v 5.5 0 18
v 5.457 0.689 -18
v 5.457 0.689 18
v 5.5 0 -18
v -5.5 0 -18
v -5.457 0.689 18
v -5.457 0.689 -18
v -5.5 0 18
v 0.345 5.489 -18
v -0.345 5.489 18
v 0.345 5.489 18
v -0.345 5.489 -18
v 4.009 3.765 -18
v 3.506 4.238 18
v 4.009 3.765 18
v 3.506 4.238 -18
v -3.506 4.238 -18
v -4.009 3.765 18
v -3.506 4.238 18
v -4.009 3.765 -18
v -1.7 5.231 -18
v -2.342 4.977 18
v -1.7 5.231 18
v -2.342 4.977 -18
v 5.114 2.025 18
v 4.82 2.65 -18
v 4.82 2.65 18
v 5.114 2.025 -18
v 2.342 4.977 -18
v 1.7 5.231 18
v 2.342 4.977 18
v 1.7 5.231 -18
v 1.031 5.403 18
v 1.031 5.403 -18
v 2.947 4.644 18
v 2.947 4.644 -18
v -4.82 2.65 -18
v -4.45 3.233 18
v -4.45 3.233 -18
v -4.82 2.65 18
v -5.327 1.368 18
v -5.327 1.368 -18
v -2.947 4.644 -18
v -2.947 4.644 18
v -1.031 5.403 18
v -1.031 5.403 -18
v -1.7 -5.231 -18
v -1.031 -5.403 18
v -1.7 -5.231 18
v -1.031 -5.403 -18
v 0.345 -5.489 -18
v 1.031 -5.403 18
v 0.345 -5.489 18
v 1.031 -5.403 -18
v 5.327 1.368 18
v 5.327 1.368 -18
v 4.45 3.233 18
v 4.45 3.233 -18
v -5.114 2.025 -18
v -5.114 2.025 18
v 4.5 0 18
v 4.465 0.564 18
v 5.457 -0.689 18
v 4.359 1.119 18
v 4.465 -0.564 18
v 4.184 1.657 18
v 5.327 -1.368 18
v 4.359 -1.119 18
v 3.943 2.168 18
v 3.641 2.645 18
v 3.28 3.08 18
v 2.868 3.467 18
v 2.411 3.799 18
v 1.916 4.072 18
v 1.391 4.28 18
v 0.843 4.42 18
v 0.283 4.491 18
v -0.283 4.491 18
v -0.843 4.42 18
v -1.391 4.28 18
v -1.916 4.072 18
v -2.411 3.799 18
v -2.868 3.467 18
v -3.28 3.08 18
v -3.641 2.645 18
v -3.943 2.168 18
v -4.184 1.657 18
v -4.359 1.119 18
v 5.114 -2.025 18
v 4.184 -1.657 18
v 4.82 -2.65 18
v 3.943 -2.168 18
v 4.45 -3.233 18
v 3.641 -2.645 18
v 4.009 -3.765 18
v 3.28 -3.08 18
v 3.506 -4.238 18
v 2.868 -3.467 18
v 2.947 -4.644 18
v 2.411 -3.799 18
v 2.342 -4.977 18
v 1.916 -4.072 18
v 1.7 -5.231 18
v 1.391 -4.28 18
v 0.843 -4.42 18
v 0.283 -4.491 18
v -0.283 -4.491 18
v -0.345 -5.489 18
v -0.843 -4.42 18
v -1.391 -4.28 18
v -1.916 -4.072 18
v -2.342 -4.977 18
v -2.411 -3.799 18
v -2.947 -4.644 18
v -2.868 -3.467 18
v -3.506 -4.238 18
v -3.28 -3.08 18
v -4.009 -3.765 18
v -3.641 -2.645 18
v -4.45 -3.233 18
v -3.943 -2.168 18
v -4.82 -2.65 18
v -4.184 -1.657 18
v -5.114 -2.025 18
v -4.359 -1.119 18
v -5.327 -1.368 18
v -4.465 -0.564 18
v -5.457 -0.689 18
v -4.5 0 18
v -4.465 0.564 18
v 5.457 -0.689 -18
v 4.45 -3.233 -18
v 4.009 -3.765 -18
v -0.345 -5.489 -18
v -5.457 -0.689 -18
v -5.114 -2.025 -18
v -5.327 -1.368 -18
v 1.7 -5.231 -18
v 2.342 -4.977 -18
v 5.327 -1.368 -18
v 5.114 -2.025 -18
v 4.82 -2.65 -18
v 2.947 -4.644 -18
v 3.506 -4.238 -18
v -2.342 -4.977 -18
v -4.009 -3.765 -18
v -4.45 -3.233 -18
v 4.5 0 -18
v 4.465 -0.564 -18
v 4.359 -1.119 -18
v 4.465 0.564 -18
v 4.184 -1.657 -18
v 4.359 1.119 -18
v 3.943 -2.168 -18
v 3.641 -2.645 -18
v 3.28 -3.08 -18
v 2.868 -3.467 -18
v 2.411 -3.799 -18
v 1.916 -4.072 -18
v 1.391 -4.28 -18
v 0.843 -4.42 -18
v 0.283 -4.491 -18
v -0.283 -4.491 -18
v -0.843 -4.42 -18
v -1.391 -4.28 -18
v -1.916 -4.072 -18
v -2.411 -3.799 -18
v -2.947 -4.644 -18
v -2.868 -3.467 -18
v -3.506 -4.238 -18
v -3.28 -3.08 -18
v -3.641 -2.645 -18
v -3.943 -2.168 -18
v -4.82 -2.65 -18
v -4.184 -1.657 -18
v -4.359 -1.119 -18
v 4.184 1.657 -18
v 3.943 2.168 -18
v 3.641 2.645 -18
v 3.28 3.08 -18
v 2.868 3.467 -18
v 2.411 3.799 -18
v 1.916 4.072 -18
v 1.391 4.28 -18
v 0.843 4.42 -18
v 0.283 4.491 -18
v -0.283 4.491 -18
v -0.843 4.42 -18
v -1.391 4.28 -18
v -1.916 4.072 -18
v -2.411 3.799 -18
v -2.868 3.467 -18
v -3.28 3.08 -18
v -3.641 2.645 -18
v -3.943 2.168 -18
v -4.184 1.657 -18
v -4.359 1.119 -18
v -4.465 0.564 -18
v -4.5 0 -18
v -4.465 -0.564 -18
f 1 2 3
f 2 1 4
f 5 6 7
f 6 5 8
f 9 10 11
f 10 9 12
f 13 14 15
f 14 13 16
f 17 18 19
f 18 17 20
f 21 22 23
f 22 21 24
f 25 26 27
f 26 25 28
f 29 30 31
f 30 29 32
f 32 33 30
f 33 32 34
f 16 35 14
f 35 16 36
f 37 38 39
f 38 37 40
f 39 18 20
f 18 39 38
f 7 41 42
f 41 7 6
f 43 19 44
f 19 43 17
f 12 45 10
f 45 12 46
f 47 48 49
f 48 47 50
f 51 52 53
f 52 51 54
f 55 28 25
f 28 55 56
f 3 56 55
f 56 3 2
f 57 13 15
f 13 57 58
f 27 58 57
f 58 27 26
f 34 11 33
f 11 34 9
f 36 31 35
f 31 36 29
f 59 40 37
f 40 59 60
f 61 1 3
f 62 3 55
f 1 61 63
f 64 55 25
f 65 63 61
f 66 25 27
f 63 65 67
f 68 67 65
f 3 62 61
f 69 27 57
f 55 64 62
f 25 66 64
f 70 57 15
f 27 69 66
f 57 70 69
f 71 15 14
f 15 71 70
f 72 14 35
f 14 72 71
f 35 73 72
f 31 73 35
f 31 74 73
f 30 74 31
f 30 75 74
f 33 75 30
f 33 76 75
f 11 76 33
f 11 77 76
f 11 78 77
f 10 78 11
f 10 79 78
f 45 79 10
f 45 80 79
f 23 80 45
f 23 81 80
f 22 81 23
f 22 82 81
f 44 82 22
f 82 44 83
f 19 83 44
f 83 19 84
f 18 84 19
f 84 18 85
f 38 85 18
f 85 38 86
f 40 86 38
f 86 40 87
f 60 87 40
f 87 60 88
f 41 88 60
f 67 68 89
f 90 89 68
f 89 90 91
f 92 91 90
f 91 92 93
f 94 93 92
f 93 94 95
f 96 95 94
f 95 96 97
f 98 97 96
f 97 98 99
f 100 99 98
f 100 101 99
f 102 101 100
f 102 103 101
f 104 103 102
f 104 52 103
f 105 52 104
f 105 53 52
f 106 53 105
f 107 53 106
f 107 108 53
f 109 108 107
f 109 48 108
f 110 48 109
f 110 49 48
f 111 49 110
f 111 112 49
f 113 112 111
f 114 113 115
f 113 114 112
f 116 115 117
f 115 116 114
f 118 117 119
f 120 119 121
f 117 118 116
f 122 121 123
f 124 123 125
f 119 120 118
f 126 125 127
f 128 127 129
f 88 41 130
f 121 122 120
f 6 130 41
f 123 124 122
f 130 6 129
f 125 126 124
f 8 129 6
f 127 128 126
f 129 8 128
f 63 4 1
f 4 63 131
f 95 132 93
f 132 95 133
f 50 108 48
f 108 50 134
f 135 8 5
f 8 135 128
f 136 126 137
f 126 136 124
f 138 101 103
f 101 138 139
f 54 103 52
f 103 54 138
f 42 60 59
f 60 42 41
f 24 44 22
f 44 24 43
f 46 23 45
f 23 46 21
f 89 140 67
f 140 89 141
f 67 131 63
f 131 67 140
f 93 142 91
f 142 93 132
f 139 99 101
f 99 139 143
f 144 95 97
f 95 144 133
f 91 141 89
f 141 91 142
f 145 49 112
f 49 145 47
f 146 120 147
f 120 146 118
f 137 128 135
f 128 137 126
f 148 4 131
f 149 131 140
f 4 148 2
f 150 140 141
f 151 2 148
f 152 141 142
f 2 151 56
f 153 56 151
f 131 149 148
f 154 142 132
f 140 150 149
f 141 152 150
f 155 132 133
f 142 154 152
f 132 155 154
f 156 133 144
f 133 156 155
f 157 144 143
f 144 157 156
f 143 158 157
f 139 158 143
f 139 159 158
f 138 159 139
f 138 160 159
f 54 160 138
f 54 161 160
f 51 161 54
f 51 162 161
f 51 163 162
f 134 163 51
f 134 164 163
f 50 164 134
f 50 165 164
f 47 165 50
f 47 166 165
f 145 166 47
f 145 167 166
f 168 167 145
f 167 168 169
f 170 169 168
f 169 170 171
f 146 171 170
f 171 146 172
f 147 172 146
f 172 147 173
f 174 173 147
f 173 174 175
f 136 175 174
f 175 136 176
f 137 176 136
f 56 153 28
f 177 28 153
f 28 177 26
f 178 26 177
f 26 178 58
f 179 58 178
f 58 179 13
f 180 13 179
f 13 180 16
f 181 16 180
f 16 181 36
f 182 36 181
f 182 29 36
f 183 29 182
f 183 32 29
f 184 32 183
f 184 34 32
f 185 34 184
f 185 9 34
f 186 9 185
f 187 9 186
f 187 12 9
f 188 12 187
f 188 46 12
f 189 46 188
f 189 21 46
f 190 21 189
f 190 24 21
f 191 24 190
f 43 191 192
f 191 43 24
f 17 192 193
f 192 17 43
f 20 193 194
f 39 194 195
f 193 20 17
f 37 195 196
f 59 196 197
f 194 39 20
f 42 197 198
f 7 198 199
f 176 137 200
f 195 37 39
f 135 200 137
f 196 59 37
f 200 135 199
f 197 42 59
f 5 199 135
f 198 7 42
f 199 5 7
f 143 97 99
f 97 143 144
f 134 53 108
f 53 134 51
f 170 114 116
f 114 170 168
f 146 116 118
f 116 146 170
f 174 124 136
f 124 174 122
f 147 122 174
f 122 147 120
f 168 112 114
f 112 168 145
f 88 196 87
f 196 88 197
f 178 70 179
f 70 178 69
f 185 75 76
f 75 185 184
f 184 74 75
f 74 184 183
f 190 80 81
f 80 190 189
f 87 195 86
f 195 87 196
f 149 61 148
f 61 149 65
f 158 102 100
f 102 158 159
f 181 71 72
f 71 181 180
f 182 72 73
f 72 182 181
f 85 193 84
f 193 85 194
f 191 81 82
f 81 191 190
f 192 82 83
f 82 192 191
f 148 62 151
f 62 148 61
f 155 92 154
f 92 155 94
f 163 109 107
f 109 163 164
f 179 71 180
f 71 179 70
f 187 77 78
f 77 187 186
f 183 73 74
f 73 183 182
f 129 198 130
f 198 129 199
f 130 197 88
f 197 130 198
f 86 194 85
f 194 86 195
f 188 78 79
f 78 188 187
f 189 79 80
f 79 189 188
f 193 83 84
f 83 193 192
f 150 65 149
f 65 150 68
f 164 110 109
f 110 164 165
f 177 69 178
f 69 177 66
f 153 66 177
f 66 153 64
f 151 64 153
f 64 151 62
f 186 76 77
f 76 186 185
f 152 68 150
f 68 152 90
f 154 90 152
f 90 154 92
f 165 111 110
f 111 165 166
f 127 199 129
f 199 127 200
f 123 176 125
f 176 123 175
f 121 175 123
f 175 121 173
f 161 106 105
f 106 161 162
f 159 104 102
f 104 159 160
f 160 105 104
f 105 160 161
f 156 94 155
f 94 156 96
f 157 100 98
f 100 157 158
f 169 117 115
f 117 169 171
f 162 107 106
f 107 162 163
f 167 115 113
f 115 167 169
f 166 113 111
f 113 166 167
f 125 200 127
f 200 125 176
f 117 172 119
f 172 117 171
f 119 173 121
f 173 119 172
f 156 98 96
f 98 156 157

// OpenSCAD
$fn = 50;


difference() {
	union() {
		translate(v = [0, 0, -18.0000000000]) {
			cylinder(h = 36, r = 5.5000000000);
		}
	}
	union() {
		translate(v = [0, 0, -100.0000000000]) {
			cylinder(h = 200, r = 4.5000000000);
		}
	}
}
